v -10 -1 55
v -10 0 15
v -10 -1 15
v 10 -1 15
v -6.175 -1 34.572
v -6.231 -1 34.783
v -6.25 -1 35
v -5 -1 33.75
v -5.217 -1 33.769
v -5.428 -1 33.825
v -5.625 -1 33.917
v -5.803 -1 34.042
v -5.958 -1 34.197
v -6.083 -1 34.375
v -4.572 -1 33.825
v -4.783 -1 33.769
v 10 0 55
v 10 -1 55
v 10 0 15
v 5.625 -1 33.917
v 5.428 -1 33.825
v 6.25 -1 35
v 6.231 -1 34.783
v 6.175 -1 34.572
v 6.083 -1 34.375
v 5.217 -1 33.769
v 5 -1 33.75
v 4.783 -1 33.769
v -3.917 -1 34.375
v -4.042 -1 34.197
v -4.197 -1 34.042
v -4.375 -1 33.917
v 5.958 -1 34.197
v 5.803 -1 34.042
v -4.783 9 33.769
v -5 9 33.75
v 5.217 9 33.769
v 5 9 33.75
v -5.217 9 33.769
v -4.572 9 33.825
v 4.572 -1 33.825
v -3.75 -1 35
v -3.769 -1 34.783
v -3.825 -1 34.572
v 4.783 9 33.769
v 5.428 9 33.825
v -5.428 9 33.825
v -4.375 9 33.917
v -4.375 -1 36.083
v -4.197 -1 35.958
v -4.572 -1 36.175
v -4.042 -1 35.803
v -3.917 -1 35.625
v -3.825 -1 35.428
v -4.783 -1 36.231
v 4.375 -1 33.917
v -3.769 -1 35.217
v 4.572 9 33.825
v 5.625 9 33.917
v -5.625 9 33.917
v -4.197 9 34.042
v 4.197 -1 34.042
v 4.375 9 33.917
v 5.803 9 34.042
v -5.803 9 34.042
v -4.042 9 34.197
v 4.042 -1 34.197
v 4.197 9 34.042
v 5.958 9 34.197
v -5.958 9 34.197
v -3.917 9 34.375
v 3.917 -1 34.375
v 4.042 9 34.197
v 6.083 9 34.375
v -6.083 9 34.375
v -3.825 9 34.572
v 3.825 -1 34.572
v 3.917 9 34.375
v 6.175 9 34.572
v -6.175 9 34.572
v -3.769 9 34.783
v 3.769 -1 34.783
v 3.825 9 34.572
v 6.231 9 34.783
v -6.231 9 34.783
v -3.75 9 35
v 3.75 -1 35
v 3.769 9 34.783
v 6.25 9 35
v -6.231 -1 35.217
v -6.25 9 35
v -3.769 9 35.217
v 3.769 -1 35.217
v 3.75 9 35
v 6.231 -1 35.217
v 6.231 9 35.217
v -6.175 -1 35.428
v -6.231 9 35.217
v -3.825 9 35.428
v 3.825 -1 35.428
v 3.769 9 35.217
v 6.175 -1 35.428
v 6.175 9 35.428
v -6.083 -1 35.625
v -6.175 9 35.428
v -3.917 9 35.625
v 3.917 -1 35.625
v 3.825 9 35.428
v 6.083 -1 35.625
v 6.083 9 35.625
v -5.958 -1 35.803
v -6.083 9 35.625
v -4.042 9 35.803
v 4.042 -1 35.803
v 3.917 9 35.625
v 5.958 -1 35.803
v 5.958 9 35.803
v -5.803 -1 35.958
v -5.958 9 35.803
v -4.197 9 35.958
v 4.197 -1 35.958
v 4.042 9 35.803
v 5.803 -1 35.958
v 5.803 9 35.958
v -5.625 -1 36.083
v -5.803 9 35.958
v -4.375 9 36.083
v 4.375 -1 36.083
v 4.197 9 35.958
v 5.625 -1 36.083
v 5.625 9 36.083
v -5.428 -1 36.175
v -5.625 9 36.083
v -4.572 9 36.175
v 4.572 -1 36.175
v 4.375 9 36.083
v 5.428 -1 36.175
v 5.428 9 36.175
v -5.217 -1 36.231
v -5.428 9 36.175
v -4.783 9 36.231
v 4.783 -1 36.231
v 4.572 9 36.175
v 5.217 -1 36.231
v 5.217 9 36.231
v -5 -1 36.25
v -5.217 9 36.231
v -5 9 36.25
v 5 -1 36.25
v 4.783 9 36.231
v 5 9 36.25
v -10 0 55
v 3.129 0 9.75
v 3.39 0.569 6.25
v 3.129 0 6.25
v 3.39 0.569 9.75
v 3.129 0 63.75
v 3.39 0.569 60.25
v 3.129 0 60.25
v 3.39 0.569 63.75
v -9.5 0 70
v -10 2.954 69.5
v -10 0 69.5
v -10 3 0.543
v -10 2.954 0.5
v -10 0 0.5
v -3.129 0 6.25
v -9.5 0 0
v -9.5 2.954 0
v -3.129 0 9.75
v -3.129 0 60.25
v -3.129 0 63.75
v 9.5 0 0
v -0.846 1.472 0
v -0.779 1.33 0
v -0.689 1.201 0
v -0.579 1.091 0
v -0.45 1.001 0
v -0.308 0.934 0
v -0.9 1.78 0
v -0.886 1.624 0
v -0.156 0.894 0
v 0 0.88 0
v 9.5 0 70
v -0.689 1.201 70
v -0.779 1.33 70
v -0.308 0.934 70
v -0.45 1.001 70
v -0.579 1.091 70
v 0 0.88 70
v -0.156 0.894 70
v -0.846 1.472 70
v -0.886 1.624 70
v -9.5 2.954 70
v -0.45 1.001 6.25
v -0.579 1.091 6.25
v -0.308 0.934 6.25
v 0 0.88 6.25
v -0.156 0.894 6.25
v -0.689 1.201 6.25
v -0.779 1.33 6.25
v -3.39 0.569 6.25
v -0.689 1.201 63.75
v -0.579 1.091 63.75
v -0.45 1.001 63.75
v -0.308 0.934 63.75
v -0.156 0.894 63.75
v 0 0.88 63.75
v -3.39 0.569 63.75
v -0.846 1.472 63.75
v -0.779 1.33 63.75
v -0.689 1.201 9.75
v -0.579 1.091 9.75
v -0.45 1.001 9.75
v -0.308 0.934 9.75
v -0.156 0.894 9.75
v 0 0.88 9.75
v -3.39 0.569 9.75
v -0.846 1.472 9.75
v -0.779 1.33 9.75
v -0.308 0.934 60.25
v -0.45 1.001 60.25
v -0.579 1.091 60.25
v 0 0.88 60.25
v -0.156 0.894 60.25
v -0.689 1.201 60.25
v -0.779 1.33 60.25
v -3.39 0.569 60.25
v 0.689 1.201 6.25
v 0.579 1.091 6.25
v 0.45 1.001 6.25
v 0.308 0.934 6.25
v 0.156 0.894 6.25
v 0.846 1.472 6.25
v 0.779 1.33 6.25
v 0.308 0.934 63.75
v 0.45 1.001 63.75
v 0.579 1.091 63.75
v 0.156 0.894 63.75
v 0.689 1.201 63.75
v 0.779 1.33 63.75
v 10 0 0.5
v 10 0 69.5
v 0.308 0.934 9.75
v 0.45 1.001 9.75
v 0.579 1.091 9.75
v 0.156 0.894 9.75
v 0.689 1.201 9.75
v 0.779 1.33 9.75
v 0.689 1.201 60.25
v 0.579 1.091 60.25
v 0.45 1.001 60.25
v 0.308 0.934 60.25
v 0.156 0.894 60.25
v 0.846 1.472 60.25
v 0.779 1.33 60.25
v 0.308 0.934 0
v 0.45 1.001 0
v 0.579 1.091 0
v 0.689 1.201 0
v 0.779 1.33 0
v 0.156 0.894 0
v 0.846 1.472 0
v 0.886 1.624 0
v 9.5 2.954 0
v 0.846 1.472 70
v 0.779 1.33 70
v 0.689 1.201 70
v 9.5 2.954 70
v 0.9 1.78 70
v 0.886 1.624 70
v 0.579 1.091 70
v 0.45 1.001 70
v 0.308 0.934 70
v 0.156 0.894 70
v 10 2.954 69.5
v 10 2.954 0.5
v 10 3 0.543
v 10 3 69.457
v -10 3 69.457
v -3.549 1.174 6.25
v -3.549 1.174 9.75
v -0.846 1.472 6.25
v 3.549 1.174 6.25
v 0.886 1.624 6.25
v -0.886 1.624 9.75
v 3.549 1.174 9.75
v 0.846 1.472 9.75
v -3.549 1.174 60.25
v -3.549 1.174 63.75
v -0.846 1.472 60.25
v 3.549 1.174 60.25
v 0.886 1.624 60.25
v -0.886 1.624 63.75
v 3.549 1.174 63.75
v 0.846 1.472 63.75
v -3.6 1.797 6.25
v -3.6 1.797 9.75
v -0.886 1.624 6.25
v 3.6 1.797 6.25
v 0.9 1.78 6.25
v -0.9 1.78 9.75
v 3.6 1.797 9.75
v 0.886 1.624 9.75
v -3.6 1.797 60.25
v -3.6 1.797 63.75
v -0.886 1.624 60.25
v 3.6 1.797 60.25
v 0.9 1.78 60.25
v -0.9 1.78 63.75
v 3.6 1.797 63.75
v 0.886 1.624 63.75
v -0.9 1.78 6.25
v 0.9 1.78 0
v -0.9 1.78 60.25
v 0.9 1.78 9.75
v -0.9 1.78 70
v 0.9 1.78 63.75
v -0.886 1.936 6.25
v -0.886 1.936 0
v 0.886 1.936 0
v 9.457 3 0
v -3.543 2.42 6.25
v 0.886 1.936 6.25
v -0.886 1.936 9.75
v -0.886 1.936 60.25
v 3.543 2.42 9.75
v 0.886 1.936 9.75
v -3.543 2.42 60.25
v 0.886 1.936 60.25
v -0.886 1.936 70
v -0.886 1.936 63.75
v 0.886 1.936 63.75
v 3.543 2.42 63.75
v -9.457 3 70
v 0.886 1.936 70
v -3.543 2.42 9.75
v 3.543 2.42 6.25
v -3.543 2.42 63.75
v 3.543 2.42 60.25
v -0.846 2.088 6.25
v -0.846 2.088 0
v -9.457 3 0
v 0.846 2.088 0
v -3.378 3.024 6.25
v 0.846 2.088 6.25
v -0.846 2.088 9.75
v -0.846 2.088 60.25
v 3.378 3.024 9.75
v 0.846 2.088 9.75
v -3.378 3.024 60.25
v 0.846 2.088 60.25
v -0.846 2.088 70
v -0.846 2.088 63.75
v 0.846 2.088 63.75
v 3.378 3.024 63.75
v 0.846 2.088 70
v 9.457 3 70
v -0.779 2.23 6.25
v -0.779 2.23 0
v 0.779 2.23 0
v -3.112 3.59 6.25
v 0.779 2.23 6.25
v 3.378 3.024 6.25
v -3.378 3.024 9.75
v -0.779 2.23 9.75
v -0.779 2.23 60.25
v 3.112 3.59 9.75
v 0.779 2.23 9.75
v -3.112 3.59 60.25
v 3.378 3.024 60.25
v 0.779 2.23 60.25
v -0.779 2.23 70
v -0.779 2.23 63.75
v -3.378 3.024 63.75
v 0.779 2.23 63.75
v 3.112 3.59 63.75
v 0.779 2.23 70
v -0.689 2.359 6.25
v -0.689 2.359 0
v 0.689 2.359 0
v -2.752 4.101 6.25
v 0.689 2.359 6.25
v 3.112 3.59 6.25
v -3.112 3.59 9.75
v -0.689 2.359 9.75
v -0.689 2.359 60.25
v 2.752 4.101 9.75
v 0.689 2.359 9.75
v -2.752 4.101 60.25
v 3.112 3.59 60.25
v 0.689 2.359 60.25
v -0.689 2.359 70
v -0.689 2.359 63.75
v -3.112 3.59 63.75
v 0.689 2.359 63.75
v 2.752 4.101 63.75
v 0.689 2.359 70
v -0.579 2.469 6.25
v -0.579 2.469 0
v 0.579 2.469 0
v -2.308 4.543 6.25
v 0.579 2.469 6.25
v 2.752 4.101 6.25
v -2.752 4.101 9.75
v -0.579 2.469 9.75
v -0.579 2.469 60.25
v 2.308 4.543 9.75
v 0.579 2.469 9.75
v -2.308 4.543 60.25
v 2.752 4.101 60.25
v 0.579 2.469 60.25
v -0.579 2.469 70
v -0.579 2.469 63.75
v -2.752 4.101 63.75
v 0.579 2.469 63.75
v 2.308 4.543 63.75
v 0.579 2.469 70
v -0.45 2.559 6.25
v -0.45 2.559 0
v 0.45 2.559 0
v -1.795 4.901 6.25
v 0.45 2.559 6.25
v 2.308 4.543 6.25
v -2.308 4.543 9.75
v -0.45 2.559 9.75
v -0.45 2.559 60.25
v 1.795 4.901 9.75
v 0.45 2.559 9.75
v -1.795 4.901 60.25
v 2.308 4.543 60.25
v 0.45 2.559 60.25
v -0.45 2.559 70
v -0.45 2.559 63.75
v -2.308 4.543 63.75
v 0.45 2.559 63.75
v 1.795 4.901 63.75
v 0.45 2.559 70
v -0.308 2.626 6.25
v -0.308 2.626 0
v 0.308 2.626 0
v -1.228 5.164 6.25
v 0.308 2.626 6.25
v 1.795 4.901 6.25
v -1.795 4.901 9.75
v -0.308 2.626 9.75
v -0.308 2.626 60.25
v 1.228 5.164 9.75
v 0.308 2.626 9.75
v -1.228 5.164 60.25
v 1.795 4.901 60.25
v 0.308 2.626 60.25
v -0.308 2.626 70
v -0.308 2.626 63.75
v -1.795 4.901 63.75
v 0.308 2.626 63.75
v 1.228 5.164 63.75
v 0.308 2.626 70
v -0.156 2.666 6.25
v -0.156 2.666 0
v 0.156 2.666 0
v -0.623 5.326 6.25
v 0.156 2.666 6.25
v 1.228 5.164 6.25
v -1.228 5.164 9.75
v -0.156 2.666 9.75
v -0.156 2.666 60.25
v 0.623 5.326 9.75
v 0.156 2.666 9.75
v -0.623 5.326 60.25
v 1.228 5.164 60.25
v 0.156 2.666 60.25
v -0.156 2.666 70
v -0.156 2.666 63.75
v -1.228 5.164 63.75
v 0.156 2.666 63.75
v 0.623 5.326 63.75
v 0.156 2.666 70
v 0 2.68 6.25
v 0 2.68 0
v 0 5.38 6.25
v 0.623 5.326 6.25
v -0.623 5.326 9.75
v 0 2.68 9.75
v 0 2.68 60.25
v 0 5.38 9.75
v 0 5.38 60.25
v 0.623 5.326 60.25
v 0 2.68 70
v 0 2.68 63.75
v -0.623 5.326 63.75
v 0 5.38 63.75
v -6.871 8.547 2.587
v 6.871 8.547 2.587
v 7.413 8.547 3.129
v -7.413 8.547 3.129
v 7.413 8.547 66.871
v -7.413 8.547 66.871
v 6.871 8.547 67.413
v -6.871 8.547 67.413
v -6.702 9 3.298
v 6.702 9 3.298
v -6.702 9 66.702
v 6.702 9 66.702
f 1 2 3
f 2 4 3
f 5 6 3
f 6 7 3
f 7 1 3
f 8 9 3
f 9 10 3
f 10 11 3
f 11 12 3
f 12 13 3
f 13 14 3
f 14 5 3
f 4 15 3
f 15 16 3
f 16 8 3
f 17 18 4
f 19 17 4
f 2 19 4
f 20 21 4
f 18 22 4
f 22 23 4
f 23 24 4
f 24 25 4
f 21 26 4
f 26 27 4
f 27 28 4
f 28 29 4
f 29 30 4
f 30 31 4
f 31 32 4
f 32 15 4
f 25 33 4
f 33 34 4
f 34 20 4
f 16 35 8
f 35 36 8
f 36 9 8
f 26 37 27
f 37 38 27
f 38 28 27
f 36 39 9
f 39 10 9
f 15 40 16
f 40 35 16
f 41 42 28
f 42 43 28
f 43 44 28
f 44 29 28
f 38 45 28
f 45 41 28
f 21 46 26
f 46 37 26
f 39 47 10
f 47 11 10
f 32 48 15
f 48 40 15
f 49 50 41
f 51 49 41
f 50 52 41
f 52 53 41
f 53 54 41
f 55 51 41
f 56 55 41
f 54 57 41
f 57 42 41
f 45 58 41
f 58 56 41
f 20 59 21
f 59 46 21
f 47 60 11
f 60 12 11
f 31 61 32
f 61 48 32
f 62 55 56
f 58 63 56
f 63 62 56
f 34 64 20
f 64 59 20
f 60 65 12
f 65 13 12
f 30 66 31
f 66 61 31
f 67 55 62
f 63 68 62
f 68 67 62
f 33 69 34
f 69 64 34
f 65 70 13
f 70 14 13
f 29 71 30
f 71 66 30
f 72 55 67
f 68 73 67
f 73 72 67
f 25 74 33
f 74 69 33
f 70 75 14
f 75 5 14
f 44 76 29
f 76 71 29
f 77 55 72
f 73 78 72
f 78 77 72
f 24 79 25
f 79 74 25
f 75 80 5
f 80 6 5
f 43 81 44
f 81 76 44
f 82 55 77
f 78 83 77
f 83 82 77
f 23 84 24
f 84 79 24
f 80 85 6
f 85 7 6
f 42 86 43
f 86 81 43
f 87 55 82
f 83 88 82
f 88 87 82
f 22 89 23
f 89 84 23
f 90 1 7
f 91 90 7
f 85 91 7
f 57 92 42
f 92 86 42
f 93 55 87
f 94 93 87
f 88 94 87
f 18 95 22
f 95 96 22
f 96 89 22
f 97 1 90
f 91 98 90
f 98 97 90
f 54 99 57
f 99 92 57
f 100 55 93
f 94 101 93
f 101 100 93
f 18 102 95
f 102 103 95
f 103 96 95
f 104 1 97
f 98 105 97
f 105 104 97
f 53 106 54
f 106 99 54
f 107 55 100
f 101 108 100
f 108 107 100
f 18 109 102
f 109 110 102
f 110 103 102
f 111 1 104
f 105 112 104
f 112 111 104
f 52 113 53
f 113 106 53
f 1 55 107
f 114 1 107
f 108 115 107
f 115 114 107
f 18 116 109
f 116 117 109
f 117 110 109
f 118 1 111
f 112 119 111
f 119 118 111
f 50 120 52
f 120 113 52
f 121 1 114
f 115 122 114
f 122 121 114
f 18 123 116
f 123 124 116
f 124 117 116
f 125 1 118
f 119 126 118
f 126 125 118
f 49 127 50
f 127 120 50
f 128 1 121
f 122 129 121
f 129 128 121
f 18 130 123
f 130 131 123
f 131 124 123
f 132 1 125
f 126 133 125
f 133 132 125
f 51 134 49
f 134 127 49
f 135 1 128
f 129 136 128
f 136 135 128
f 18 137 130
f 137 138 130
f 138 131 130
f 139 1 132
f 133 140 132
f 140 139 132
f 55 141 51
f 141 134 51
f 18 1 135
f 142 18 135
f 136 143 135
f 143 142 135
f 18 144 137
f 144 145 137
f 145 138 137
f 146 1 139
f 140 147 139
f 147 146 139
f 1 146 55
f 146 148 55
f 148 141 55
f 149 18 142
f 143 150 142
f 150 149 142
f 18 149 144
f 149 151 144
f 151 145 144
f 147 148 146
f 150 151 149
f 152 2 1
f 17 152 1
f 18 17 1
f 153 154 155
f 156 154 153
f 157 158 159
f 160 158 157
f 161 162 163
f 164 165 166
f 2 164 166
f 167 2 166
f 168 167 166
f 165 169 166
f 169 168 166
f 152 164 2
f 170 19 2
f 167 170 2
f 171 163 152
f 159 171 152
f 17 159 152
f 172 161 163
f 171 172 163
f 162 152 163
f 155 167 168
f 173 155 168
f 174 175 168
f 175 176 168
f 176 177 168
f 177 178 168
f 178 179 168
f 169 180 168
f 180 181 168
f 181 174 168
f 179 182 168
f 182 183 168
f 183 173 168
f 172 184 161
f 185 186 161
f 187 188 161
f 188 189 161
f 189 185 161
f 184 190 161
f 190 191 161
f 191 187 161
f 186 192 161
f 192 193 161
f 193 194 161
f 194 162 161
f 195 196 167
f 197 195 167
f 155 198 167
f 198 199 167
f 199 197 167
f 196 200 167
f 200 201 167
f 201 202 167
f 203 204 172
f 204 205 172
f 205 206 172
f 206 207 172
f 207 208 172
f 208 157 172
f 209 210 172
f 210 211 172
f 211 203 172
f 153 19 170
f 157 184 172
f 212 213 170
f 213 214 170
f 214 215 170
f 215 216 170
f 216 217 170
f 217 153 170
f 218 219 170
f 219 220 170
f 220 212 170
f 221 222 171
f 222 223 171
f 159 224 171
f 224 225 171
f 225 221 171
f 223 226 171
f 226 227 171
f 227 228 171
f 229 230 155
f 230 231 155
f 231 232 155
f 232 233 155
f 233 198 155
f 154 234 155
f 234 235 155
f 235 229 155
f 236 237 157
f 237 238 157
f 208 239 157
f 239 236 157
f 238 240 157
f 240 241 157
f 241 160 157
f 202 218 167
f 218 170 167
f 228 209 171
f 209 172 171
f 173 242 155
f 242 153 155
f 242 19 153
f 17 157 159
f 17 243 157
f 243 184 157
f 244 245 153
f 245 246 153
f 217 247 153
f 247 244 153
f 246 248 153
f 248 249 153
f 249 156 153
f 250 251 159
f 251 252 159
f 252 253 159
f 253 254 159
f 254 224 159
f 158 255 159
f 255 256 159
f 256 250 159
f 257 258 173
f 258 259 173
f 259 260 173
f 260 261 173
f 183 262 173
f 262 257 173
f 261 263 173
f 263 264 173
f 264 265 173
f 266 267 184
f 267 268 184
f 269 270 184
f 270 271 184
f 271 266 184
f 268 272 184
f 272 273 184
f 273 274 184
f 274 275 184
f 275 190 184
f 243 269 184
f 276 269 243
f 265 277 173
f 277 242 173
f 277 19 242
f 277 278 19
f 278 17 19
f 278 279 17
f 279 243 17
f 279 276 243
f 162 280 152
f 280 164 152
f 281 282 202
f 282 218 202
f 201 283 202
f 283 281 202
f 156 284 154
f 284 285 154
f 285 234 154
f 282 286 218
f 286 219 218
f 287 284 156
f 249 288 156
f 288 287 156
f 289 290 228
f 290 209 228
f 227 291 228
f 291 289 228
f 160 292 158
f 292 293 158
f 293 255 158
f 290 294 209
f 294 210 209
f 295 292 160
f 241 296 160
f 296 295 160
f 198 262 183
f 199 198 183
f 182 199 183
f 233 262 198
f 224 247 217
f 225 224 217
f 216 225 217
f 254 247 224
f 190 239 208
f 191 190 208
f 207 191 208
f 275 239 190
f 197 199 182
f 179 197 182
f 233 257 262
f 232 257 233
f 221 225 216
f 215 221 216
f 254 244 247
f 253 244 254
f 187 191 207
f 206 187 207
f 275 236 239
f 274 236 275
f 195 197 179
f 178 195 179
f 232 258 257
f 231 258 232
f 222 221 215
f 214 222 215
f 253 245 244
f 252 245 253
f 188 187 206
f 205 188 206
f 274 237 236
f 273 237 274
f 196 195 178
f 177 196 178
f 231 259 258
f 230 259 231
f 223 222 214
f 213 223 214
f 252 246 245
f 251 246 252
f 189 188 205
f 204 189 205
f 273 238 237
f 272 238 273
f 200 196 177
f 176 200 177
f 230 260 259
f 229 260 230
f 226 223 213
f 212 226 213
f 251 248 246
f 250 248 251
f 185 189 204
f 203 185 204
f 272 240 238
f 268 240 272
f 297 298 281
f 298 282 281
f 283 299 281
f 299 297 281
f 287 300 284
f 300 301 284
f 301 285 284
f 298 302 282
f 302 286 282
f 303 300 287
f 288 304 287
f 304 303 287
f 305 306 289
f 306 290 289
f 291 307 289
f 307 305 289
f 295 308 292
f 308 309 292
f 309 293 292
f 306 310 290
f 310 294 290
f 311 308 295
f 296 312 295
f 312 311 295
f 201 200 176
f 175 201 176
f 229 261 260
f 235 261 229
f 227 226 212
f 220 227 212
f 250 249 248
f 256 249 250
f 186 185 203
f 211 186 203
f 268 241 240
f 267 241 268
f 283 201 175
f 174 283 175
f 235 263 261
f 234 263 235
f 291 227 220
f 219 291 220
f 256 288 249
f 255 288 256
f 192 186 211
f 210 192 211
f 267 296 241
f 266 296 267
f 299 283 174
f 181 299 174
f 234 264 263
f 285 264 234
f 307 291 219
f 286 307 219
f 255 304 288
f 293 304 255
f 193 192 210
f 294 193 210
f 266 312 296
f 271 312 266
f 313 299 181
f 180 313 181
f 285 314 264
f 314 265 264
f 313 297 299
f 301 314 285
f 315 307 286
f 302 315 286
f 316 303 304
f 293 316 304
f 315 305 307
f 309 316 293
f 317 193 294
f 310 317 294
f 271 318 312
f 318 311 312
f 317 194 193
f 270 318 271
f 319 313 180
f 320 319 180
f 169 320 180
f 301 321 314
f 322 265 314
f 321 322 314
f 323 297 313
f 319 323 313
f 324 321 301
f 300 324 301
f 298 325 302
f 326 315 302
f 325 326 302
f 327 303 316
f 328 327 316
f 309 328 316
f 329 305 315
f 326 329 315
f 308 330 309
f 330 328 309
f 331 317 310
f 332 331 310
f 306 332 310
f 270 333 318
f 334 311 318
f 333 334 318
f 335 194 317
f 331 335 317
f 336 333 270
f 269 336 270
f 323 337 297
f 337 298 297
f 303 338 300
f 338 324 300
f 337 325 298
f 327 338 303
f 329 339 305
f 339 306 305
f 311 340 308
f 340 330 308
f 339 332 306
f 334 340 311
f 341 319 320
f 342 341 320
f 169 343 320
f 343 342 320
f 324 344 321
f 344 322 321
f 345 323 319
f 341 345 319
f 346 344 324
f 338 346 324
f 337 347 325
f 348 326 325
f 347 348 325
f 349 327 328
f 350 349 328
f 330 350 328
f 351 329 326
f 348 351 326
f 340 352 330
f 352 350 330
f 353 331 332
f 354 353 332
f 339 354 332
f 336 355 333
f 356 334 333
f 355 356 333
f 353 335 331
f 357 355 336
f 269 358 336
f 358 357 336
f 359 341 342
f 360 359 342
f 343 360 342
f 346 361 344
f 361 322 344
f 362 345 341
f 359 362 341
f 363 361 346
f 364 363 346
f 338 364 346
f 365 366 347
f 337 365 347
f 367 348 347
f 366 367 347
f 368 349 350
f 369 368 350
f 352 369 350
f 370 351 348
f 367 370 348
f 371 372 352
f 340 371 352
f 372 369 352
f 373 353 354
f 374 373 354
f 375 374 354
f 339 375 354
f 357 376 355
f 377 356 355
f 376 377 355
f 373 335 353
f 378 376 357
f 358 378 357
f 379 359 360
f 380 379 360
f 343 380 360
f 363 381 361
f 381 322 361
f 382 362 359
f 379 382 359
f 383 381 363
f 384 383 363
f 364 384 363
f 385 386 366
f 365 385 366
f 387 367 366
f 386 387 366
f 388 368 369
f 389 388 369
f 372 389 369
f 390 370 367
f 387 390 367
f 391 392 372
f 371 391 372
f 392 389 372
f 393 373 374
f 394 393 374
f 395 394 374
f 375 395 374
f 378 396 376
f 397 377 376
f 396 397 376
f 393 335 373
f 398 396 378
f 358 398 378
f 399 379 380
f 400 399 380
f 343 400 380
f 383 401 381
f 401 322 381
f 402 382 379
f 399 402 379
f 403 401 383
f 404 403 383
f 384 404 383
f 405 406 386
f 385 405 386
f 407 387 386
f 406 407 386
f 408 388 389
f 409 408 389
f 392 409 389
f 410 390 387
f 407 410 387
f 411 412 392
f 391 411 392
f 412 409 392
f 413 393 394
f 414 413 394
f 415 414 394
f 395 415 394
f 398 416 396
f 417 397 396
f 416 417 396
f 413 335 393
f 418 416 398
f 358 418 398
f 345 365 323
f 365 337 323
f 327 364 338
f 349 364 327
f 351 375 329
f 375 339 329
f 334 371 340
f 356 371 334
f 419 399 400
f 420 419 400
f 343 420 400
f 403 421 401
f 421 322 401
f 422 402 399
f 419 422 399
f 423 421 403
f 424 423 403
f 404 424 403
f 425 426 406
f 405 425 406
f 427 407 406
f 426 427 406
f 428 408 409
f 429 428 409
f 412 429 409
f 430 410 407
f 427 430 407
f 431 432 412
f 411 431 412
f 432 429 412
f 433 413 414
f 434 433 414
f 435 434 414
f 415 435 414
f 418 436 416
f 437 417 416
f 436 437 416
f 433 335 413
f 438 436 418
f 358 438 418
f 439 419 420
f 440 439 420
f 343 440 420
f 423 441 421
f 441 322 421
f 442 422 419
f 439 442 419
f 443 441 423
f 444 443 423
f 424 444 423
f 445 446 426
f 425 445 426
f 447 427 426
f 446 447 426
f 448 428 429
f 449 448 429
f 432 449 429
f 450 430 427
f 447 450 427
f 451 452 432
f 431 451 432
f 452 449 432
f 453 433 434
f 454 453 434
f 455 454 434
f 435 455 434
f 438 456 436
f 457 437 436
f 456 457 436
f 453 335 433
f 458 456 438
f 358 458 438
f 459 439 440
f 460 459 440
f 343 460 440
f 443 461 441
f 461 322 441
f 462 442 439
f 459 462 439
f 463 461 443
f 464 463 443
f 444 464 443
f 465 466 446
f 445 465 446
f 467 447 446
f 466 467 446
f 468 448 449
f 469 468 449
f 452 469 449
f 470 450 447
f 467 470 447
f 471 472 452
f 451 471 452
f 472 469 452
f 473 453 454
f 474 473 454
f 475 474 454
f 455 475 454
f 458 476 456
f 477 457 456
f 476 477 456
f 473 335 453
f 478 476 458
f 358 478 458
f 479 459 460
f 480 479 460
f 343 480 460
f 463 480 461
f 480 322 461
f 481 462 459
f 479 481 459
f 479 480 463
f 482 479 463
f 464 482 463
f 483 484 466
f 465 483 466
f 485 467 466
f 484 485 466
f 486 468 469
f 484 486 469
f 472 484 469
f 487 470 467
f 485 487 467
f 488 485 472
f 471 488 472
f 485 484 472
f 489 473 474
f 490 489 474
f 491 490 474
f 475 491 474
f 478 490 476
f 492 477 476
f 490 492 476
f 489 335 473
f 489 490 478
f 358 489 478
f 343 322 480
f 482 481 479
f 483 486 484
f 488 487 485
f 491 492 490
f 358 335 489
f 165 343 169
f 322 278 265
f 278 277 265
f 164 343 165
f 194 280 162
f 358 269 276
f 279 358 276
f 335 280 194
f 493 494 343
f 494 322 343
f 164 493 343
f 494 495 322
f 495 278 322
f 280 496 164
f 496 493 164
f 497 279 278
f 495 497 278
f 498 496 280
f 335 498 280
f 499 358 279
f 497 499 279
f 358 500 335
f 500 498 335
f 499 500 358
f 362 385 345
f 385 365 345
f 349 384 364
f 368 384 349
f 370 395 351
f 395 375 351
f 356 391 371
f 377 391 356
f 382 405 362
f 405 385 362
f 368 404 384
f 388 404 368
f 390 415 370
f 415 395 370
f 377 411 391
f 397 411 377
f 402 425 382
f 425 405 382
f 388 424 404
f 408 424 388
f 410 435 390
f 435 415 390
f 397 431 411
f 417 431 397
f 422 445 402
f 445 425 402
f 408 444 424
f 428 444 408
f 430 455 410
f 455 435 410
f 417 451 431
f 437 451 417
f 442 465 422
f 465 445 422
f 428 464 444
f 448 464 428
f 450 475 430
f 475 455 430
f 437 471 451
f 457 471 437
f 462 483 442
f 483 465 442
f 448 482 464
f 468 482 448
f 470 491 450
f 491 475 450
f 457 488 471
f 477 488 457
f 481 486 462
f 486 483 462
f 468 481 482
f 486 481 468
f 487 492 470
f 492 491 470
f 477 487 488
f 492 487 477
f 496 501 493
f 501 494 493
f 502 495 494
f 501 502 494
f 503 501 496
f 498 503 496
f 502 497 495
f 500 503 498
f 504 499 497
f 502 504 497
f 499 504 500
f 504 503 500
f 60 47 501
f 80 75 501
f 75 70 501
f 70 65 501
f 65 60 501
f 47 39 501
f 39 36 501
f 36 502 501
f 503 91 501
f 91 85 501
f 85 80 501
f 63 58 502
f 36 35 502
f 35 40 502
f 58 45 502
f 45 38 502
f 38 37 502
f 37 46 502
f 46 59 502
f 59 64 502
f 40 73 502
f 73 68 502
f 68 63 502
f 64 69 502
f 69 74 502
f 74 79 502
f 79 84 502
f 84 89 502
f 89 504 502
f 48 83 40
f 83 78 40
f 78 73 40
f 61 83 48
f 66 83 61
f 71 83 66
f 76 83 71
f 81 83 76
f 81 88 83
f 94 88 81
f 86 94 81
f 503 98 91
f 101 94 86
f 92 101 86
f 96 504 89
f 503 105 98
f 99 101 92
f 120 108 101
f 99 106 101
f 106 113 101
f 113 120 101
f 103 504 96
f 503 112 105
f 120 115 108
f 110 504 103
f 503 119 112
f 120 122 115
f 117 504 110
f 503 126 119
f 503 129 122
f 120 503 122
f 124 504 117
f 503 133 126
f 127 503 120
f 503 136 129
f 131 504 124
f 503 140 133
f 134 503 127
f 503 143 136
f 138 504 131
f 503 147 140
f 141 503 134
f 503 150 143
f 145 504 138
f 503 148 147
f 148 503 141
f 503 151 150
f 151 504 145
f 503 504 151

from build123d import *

# Parameters (mm, degrees)
EXTRUDE_1_DEPTH     = 70
CUT_EXTRUDE_1_DEPTH = 74.35529974
SKETCH_3_W          = 18.609369779
SKETCH_3_H          = 2.954088086
EXTRUDE_3_DEPTH     = 15.5
SKETCH_4_W          = 40
SKETCH_4_H          = 1
EXTRUDE_4_DEPTH     = 20
SKETCH_5_R          = 0.9
CUT_EXTRUDE_2_DEPTH = 72.281133549
SKETCH_6_W          = 3.6
SKETCH_6_H          = 3.5
SKETCH_7_R          = 1.25
CUT_EXTRUDE_3_DEPTH = 72.414284285


with BuildPart() as part:
    # ｽｹｯﾁ1 → ﾎﾞｽ - 押し出し1 (new body)
    with BuildSketch(Plane.XY):
        Polygon((-10, 0), (10, 0), (10, 3), (7.202154051, 9), (-7.202154051, 9), (-10, 3), align=None)
    extrude(amount=EXTRUDE_1_DEPTH)

    # ｽｹｯﾁ2 → ｶｯﾄ - 押し出し1 (cut, through all)
    with BuildSketch(Plane(origin=(10, 0, 0), x_dir=(0, 0, -1), z_dir=(1, 0, 0))):
        Polygon((-70, 3), (-67.202154051, 9), (-70, 9), align=None)
        Polygon((-2.797845949, 9), (0, 9), (0, 3), align=None)
    extrude(amount=-CUT_EXTRUDE_1_DEPTH, mode=Mode.SUBTRACT)

    # 面取り1
    # the kernel refuses this chamfer: 0.5 mm, written as the material it takes off along each edge
    with BuildSketch(Plane(origin=(-6.995420754, 8.697897404, 3.004579246), x_dir=(-0.8270486586180938, -0.5268881046463177, -0.19590671622030348), z_dir=(-0.41632572739388457, 0.8082980746110386, -0.41632572739387685))) as chamfer_1_piece_1:
        Polygon((-0.459173014, 0.228990916), (0.400884159, 0.228990916), (0.058288855, -0.457981831), align=None)
    extrude(amount=0.4579583, mode=Mode.SUBTRACT)
    with BuildSketch(Plane(origin=(-6.995420754, 8.697897404, 66.995420754), x_dir=(0.1959067162203077, 0.5268881046463173, -0.8270486586180933), z_dir=(-0.41632572739387774, 0.8082980746110393, 0.4163257273938825))) as chamfer_1_piece_2:
        Polygon((-0.400884159, -0.228990916), (0.459173014, -0.228990916), (-0.058288855, 0.457981831), align=None)
    extrude(amount=0.4579583, mode=Mode.SUBTRACT)
    with BuildSketch(Plane(origin=(6.995420754, 8.697897404, 3.004579246), x_dir=(0.8270486586180947, -0.5268881046463163, -0.1959067162203037), z_dir=(0.4163257273938817, 0.8082980746110384, -0.41632572739387985))) as chamfer_1_piece_3:
        Polygon((-0.459173014, -0.228990916), (0.400884159, -0.228990916), (0.058288855, 0.457981831), align=None)
    extrude(amount=0.4579583, mode=Mode.SUBTRACT)
    with BuildSketch(Plane(origin=(6.995420754, 8.697897404, 66.995420754), x_dir=(-0.19590671622030845, 0.5268881046463186, -0.8270486586180921), z_dir=(0.4163257273938828, 0.8082980746110372, 0.4163257273938814))) as chamfer_1_piece_4:
        Polygon((-0.400884159, 0.228990916), (0.459173014, 0.228990916), (-0.058288855, -0.457981831), align=None)
    extrude(amount=0.4579583, mode=Mode.SUBTRACT)
    with BuildSketch(Plane(origin=(10, -1.285841494, 70), x_dir=(0.02749587661058574, 0, -0.9996219169112968), z_dir=(0, 1, 0)), Plane(origin=(-10, 4.285841494, 70), x_dir=(-0.02749587661058574, 0, -0.9996219169112968), z_dir=(0, -1, 0))) as chamfer_1_piece_5:
        with BuildLine():
            Line((0.514336598, 0), (-0.028273577, 0.513558897))
            Line((-0.028273577, 0.513558897), (-0.038269797, 0.513283938))
            ThreePointArc((-0.038269797, 0.513283938), (-0.017064614, 0.256698915), (-0.009996219, -0.000274959))
            Line((-0.009996219, -0.000274959), (0.000274959, -0.009996219))
            ThreePointArc((0.000274959, -0.009996219), (0.257248832, -0.002927825), (0.514611556, -0.009996219))
            Line((0.514611556, -0.009996219), (0.514336598, 0))
        make_face()
    extrude(amount=5.571682988, mode=Mode.SUBTRACT)
    with BuildSketch(Plane(origin=(-7.202154051, 9, 1.505397137), x_dir=(-0.4413655645980917, -0.8973273864019796, 0), z_dir=(0, 0, 1))) as chamfer_1_piece_6:
        with BuildLine():
            Line((0.516979525, 0), (-0.237770334, 0.459056747))
            Line((-0.237770334, 0.459056747), (-0.246743608, 0.454643091))
            ThreePointArc((-0.246743608, 0.454643091), (-0.123037104, 0.227486173), (-0.008973274, -0.004413656))
            Line((-0.008973274, -0.004413656), (0.000207861, -0.009997839))
            ThreePointArc((0.000207861, -0.009997839), (0.25858594, -0.004626004), (0.517187386, -0.009997839))
            Line((0.517187386, -0.009997839), (0.516979525, 0))
        make_face()
    extrude(amount=66.989205725, mode=Mode.SUBTRACT)
    with BuildSketch(Plane(origin=(7.202154051, 9, 1.505397137), x_dir=(0.441365564598093, -0.897327386401979, 0), z_dir=(0, 0, 1))) as chamfer_1_piece_7:
        with BuildLine():
            Line((0.516979525, 0), (-0.237770334, -0.459056747))
            Line((-0.237770334, -0.459056747), (-0.246743608, -0.454643091))
            ThreePointArc((-0.246743608, -0.454643091), (-0.123037104, -0.227486173), (-0.008973274, 0.004413656))
            Line((-0.008973274, 0.004413656), (0.000207861, 0.009997839))
            ThreePointArc((0.000207861, 0.009997839), (0.25858594, 0.004626004), (0.517187386, 0.009997839))
            Line((0.517187386, 0.009997839), (0.516979525, 0))
        make_face()
    extrude(amount=66.989205725, mode=Mode.SUBTRACT)
    with BuildSketch(Plane(origin=(8.494602863, 9, 67.202154051), x_dir=(0, -0.8973273864019776, 0.4413655645980958), z_dir=(-1, 0, 0))) as chamfer_1_piece_8:
        with BuildLine():
            Line((0.516979525, 0), (-0.237770334, -0.459056747))
            Line((-0.237770334, -0.459056747), (-0.246743608, -0.454643091))
            ThreePointArc((-0.246743608, -0.454643091), (-0.123037104, -0.227486173), (-0.008973274, 0.004413656))
            Line((-0.008973274, 0.004413656), (0.000207861, 0.009997839))
            ThreePointArc((0.000207861, 0.009997839), (0.25858594, 0.004626004), (0.517187386, 0.009997839))
            Line((0.517187386, 0.009997839), (0.516979525, 0))
        make_face()
    extrude(amount=16.989205725, mode=Mode.SUBTRACT)
    with BuildSketch(Plane(origin=(6.700455124, 10.075896822, 66.700455124), x_dir=(0.18700008699946485, -0.3421923931836809, -0.920834042327616), z_dir=(0.38928162063502725, -0.83481712947899, 0.38928162063501803)), Plane(origin=(-10.501698928, 1.924103178, 70.501698928), x_dir=(-0.1870000869994657, -0.34219239318368055, -0.920834042327616), z_dir=(0.38928162063502697, 0.8348171294789901, -0.3892816206350181))) as chamfer_1_piece_9:
        with BuildLine():
            Line((0.515512576, 0), (-0.117174183, -0.502019349))
            Line((-0.117174183, -0.502019349), (-0.126965941, -0.499989208))
            ThreePointArc((-0.126965941, -0.499989208), (-0.062103739, -0.250280562), (-0.009791758, 0.002030141))
            Line((-0.009791758, 0.002030141), (0.000248629, 0.009996909))
            ThreePointArc((0.000248629, 0.009996909), (0.257845581, 0.003590326), (0.515761205, 0.009996909))
            Line((0.515761205, 0.009996909), (0.515512576, 0))
        make_face()
    extrude(amount=9.764765667, mode=Mode.SUBTRACT)
    with BuildSketch(Plane(origin=(6.700455124, 10.075896822, 3.299544876), x_dir=(0.18700008699946544, -0.34219239318368183, 0.9208340423276157), z_dir=(0.38928162063502697, -0.8348171294789896, -0.38928162063501903)), Plane(origin=(-10.501698928, 1.924103178, -0.501698928), x_dir=(-0.18700008699946621, -0.3421923931836814, 0.9208340423276155), z_dir=(0.38928162063502675, 0.8348171294789897, 0.3892816206350191))) as chamfer_1_piece_10:
        with BuildLine():
            Line((0.515512576, 0), (-0.117174183, 0.502019349))
            Line((-0.117174183, 0.502019349), (-0.126965941, 0.499989208))
            ThreePointArc((-0.126965941, 0.499989208), (-0.062103739, 0.250280562), (-0.009791758, -0.002030141))
            Line((-0.009791758, -0.002030141), (0.000248629, -0.009996909))
            ThreePointArc((0.000248629, -0.009996909), (0.257845581, -0.003590326), (0.515761205, -0.009996909))
            Line((0.515761205, -0.009996909), (0.515512576, 0))
        make_face()
    extrude(amount=9.764765667, mode=Mode.SUBTRACT)
    with BuildSketch(Plane(origin=(8.494602863, 9, 2.797845949), x_dir=(0, -0.8973273864019827, -0.44136556459808546), z_dir=(-1, 0, 0))) as chamfer_1_piece_11:
        with BuildLine():
            Line((0.516979525, 0), (-0.237770334, 0.459056747))
            Line((-0.237770334, 0.459056747), (-0.246743608, 0.454643091))
            ThreePointArc((-0.246743608, 0.454643091), (-0.123037104, 0.227486173), (-0.008973274, -0.004413656))
            Line((-0.008973274, -0.004413656), (0.000207861, -0.009997839))
            ThreePointArc((0.000207861, -0.009997839), (0.25858594, -0.004626004), (0.517187386, -0.009997839))
            Line((0.517187386, -0.009997839), (0.516979525, 0))
        make_face()
    extrude(amount=16.989205725, mode=Mode.SUBTRACT)
    with BuildSketch(Plane(origin=(10, -1.285841494, 0), x_dir=(0.02749587661058563, 0, 0.9996219169112968), z_dir=(0, 1, 0)), Plane(origin=(-10, 4.285841494, 0), x_dir=(-0.02749587661058563, 0, 0.9996219169112968), z_dir=(0, -1, 0))) as chamfer_1_piece_12:
        with BuildLine():
            Line((0.514336598, 0), (-0.028273577, -0.513558897))
            Line((-0.028273577, -0.513558897), (-0.038269797, -0.513283938))
            ThreePointArc((-0.038269797, -0.513283938), (-0.017064614, -0.256698915), (-0.009996219, 0.000274959))
            Line((-0.009996219, 0.000274959), (0.000274959, 0.009996219))
            ThreePointArc((0.000274959, 0.009996219), (0.257248832, 0.002927825), (0.514611556, 0.009996219))
            Line((0.514611556, 0.009996219), (0.514336598, 0))
        make_face()
    extrude(amount=5.571682988, mode=Mode.SUBTRACT)

    # ｽｹｯﾁ3 → ﾎﾞｽ - 押し出し3 (add)
    with BuildSketch(Plane.XY.offset(70)):
        with Locations((-0.19531511, 1.477044043)):
            Rectangle(SKETCH_3_W, SKETCH_3_H)
    extrude(amount=-EXTRUDE_3_DEPTH)

    # ｽｹｯﾁ4 → ﾎﾞｽ - 押し出し4 (add)
    with BuildSketch(Plane.ZY.offset(10)):
        with Locations((35, -0.5)):
            Rectangle(SKETCH_4_W, SKETCH_4_H)
    extrude(amount=-EXTRUDE_4_DEPTH)

    # ｽｹｯﾁ5 → ｶｯﾄ - 押し出し2 (cut, through all)
    with BuildSketch(Plane(origin=(0, 0, 0), x_dir=(-1, 0, 0), z_dir=(0, 0, -1))):
        with Locations((0, 1.78)):
            Circle(SKETCH_5_R)
    extrude(amount=-CUT_EXTRUDE_2_DEPTH, mode=Mode.SUBTRACT)

    # ｽｹｯﾁ6 → ｶｯﾄ - 回転1 (revolve, cut)
    with BuildSketch(Plane(origin=(0, 1.78, 0), x_dir=(-1, 0, 0), z_dir=(0, -1, 0))):
        with Locations((1.8, -62)):
            Rectangle(SKETCH_6_W, SKETCH_6_H)
        with Locations((1.8, -8)):
            Rectangle(SKETCH_6_W, SKETCH_6_H)
    revolve(axis=Axis((0, 1.78, 70), (0, 0, -1)), mode=Mode.SUBTRACT)

    # ｽｹｯﾁ7 → ｶｯﾄ - 押し出し3 (cut, through all)
    with BuildSketch(Plane(origin=(0, 9, 0), x_dir=(1, 0, 0), z_dir=(0, 1, 0))):
        with Locations(Location((-5, -35, 0), (0, 0, 180))):
            Circle(SKETCH_7_R)
        with Locations(Location((5, -35, 0), (0, 0, 180))):
            Circle(SKETCH_7_R)
    extrude(amount=-CUT_EXTRUDE_3_DEPTH, mode=Mode.SUBTRACT)


solid = part.part
